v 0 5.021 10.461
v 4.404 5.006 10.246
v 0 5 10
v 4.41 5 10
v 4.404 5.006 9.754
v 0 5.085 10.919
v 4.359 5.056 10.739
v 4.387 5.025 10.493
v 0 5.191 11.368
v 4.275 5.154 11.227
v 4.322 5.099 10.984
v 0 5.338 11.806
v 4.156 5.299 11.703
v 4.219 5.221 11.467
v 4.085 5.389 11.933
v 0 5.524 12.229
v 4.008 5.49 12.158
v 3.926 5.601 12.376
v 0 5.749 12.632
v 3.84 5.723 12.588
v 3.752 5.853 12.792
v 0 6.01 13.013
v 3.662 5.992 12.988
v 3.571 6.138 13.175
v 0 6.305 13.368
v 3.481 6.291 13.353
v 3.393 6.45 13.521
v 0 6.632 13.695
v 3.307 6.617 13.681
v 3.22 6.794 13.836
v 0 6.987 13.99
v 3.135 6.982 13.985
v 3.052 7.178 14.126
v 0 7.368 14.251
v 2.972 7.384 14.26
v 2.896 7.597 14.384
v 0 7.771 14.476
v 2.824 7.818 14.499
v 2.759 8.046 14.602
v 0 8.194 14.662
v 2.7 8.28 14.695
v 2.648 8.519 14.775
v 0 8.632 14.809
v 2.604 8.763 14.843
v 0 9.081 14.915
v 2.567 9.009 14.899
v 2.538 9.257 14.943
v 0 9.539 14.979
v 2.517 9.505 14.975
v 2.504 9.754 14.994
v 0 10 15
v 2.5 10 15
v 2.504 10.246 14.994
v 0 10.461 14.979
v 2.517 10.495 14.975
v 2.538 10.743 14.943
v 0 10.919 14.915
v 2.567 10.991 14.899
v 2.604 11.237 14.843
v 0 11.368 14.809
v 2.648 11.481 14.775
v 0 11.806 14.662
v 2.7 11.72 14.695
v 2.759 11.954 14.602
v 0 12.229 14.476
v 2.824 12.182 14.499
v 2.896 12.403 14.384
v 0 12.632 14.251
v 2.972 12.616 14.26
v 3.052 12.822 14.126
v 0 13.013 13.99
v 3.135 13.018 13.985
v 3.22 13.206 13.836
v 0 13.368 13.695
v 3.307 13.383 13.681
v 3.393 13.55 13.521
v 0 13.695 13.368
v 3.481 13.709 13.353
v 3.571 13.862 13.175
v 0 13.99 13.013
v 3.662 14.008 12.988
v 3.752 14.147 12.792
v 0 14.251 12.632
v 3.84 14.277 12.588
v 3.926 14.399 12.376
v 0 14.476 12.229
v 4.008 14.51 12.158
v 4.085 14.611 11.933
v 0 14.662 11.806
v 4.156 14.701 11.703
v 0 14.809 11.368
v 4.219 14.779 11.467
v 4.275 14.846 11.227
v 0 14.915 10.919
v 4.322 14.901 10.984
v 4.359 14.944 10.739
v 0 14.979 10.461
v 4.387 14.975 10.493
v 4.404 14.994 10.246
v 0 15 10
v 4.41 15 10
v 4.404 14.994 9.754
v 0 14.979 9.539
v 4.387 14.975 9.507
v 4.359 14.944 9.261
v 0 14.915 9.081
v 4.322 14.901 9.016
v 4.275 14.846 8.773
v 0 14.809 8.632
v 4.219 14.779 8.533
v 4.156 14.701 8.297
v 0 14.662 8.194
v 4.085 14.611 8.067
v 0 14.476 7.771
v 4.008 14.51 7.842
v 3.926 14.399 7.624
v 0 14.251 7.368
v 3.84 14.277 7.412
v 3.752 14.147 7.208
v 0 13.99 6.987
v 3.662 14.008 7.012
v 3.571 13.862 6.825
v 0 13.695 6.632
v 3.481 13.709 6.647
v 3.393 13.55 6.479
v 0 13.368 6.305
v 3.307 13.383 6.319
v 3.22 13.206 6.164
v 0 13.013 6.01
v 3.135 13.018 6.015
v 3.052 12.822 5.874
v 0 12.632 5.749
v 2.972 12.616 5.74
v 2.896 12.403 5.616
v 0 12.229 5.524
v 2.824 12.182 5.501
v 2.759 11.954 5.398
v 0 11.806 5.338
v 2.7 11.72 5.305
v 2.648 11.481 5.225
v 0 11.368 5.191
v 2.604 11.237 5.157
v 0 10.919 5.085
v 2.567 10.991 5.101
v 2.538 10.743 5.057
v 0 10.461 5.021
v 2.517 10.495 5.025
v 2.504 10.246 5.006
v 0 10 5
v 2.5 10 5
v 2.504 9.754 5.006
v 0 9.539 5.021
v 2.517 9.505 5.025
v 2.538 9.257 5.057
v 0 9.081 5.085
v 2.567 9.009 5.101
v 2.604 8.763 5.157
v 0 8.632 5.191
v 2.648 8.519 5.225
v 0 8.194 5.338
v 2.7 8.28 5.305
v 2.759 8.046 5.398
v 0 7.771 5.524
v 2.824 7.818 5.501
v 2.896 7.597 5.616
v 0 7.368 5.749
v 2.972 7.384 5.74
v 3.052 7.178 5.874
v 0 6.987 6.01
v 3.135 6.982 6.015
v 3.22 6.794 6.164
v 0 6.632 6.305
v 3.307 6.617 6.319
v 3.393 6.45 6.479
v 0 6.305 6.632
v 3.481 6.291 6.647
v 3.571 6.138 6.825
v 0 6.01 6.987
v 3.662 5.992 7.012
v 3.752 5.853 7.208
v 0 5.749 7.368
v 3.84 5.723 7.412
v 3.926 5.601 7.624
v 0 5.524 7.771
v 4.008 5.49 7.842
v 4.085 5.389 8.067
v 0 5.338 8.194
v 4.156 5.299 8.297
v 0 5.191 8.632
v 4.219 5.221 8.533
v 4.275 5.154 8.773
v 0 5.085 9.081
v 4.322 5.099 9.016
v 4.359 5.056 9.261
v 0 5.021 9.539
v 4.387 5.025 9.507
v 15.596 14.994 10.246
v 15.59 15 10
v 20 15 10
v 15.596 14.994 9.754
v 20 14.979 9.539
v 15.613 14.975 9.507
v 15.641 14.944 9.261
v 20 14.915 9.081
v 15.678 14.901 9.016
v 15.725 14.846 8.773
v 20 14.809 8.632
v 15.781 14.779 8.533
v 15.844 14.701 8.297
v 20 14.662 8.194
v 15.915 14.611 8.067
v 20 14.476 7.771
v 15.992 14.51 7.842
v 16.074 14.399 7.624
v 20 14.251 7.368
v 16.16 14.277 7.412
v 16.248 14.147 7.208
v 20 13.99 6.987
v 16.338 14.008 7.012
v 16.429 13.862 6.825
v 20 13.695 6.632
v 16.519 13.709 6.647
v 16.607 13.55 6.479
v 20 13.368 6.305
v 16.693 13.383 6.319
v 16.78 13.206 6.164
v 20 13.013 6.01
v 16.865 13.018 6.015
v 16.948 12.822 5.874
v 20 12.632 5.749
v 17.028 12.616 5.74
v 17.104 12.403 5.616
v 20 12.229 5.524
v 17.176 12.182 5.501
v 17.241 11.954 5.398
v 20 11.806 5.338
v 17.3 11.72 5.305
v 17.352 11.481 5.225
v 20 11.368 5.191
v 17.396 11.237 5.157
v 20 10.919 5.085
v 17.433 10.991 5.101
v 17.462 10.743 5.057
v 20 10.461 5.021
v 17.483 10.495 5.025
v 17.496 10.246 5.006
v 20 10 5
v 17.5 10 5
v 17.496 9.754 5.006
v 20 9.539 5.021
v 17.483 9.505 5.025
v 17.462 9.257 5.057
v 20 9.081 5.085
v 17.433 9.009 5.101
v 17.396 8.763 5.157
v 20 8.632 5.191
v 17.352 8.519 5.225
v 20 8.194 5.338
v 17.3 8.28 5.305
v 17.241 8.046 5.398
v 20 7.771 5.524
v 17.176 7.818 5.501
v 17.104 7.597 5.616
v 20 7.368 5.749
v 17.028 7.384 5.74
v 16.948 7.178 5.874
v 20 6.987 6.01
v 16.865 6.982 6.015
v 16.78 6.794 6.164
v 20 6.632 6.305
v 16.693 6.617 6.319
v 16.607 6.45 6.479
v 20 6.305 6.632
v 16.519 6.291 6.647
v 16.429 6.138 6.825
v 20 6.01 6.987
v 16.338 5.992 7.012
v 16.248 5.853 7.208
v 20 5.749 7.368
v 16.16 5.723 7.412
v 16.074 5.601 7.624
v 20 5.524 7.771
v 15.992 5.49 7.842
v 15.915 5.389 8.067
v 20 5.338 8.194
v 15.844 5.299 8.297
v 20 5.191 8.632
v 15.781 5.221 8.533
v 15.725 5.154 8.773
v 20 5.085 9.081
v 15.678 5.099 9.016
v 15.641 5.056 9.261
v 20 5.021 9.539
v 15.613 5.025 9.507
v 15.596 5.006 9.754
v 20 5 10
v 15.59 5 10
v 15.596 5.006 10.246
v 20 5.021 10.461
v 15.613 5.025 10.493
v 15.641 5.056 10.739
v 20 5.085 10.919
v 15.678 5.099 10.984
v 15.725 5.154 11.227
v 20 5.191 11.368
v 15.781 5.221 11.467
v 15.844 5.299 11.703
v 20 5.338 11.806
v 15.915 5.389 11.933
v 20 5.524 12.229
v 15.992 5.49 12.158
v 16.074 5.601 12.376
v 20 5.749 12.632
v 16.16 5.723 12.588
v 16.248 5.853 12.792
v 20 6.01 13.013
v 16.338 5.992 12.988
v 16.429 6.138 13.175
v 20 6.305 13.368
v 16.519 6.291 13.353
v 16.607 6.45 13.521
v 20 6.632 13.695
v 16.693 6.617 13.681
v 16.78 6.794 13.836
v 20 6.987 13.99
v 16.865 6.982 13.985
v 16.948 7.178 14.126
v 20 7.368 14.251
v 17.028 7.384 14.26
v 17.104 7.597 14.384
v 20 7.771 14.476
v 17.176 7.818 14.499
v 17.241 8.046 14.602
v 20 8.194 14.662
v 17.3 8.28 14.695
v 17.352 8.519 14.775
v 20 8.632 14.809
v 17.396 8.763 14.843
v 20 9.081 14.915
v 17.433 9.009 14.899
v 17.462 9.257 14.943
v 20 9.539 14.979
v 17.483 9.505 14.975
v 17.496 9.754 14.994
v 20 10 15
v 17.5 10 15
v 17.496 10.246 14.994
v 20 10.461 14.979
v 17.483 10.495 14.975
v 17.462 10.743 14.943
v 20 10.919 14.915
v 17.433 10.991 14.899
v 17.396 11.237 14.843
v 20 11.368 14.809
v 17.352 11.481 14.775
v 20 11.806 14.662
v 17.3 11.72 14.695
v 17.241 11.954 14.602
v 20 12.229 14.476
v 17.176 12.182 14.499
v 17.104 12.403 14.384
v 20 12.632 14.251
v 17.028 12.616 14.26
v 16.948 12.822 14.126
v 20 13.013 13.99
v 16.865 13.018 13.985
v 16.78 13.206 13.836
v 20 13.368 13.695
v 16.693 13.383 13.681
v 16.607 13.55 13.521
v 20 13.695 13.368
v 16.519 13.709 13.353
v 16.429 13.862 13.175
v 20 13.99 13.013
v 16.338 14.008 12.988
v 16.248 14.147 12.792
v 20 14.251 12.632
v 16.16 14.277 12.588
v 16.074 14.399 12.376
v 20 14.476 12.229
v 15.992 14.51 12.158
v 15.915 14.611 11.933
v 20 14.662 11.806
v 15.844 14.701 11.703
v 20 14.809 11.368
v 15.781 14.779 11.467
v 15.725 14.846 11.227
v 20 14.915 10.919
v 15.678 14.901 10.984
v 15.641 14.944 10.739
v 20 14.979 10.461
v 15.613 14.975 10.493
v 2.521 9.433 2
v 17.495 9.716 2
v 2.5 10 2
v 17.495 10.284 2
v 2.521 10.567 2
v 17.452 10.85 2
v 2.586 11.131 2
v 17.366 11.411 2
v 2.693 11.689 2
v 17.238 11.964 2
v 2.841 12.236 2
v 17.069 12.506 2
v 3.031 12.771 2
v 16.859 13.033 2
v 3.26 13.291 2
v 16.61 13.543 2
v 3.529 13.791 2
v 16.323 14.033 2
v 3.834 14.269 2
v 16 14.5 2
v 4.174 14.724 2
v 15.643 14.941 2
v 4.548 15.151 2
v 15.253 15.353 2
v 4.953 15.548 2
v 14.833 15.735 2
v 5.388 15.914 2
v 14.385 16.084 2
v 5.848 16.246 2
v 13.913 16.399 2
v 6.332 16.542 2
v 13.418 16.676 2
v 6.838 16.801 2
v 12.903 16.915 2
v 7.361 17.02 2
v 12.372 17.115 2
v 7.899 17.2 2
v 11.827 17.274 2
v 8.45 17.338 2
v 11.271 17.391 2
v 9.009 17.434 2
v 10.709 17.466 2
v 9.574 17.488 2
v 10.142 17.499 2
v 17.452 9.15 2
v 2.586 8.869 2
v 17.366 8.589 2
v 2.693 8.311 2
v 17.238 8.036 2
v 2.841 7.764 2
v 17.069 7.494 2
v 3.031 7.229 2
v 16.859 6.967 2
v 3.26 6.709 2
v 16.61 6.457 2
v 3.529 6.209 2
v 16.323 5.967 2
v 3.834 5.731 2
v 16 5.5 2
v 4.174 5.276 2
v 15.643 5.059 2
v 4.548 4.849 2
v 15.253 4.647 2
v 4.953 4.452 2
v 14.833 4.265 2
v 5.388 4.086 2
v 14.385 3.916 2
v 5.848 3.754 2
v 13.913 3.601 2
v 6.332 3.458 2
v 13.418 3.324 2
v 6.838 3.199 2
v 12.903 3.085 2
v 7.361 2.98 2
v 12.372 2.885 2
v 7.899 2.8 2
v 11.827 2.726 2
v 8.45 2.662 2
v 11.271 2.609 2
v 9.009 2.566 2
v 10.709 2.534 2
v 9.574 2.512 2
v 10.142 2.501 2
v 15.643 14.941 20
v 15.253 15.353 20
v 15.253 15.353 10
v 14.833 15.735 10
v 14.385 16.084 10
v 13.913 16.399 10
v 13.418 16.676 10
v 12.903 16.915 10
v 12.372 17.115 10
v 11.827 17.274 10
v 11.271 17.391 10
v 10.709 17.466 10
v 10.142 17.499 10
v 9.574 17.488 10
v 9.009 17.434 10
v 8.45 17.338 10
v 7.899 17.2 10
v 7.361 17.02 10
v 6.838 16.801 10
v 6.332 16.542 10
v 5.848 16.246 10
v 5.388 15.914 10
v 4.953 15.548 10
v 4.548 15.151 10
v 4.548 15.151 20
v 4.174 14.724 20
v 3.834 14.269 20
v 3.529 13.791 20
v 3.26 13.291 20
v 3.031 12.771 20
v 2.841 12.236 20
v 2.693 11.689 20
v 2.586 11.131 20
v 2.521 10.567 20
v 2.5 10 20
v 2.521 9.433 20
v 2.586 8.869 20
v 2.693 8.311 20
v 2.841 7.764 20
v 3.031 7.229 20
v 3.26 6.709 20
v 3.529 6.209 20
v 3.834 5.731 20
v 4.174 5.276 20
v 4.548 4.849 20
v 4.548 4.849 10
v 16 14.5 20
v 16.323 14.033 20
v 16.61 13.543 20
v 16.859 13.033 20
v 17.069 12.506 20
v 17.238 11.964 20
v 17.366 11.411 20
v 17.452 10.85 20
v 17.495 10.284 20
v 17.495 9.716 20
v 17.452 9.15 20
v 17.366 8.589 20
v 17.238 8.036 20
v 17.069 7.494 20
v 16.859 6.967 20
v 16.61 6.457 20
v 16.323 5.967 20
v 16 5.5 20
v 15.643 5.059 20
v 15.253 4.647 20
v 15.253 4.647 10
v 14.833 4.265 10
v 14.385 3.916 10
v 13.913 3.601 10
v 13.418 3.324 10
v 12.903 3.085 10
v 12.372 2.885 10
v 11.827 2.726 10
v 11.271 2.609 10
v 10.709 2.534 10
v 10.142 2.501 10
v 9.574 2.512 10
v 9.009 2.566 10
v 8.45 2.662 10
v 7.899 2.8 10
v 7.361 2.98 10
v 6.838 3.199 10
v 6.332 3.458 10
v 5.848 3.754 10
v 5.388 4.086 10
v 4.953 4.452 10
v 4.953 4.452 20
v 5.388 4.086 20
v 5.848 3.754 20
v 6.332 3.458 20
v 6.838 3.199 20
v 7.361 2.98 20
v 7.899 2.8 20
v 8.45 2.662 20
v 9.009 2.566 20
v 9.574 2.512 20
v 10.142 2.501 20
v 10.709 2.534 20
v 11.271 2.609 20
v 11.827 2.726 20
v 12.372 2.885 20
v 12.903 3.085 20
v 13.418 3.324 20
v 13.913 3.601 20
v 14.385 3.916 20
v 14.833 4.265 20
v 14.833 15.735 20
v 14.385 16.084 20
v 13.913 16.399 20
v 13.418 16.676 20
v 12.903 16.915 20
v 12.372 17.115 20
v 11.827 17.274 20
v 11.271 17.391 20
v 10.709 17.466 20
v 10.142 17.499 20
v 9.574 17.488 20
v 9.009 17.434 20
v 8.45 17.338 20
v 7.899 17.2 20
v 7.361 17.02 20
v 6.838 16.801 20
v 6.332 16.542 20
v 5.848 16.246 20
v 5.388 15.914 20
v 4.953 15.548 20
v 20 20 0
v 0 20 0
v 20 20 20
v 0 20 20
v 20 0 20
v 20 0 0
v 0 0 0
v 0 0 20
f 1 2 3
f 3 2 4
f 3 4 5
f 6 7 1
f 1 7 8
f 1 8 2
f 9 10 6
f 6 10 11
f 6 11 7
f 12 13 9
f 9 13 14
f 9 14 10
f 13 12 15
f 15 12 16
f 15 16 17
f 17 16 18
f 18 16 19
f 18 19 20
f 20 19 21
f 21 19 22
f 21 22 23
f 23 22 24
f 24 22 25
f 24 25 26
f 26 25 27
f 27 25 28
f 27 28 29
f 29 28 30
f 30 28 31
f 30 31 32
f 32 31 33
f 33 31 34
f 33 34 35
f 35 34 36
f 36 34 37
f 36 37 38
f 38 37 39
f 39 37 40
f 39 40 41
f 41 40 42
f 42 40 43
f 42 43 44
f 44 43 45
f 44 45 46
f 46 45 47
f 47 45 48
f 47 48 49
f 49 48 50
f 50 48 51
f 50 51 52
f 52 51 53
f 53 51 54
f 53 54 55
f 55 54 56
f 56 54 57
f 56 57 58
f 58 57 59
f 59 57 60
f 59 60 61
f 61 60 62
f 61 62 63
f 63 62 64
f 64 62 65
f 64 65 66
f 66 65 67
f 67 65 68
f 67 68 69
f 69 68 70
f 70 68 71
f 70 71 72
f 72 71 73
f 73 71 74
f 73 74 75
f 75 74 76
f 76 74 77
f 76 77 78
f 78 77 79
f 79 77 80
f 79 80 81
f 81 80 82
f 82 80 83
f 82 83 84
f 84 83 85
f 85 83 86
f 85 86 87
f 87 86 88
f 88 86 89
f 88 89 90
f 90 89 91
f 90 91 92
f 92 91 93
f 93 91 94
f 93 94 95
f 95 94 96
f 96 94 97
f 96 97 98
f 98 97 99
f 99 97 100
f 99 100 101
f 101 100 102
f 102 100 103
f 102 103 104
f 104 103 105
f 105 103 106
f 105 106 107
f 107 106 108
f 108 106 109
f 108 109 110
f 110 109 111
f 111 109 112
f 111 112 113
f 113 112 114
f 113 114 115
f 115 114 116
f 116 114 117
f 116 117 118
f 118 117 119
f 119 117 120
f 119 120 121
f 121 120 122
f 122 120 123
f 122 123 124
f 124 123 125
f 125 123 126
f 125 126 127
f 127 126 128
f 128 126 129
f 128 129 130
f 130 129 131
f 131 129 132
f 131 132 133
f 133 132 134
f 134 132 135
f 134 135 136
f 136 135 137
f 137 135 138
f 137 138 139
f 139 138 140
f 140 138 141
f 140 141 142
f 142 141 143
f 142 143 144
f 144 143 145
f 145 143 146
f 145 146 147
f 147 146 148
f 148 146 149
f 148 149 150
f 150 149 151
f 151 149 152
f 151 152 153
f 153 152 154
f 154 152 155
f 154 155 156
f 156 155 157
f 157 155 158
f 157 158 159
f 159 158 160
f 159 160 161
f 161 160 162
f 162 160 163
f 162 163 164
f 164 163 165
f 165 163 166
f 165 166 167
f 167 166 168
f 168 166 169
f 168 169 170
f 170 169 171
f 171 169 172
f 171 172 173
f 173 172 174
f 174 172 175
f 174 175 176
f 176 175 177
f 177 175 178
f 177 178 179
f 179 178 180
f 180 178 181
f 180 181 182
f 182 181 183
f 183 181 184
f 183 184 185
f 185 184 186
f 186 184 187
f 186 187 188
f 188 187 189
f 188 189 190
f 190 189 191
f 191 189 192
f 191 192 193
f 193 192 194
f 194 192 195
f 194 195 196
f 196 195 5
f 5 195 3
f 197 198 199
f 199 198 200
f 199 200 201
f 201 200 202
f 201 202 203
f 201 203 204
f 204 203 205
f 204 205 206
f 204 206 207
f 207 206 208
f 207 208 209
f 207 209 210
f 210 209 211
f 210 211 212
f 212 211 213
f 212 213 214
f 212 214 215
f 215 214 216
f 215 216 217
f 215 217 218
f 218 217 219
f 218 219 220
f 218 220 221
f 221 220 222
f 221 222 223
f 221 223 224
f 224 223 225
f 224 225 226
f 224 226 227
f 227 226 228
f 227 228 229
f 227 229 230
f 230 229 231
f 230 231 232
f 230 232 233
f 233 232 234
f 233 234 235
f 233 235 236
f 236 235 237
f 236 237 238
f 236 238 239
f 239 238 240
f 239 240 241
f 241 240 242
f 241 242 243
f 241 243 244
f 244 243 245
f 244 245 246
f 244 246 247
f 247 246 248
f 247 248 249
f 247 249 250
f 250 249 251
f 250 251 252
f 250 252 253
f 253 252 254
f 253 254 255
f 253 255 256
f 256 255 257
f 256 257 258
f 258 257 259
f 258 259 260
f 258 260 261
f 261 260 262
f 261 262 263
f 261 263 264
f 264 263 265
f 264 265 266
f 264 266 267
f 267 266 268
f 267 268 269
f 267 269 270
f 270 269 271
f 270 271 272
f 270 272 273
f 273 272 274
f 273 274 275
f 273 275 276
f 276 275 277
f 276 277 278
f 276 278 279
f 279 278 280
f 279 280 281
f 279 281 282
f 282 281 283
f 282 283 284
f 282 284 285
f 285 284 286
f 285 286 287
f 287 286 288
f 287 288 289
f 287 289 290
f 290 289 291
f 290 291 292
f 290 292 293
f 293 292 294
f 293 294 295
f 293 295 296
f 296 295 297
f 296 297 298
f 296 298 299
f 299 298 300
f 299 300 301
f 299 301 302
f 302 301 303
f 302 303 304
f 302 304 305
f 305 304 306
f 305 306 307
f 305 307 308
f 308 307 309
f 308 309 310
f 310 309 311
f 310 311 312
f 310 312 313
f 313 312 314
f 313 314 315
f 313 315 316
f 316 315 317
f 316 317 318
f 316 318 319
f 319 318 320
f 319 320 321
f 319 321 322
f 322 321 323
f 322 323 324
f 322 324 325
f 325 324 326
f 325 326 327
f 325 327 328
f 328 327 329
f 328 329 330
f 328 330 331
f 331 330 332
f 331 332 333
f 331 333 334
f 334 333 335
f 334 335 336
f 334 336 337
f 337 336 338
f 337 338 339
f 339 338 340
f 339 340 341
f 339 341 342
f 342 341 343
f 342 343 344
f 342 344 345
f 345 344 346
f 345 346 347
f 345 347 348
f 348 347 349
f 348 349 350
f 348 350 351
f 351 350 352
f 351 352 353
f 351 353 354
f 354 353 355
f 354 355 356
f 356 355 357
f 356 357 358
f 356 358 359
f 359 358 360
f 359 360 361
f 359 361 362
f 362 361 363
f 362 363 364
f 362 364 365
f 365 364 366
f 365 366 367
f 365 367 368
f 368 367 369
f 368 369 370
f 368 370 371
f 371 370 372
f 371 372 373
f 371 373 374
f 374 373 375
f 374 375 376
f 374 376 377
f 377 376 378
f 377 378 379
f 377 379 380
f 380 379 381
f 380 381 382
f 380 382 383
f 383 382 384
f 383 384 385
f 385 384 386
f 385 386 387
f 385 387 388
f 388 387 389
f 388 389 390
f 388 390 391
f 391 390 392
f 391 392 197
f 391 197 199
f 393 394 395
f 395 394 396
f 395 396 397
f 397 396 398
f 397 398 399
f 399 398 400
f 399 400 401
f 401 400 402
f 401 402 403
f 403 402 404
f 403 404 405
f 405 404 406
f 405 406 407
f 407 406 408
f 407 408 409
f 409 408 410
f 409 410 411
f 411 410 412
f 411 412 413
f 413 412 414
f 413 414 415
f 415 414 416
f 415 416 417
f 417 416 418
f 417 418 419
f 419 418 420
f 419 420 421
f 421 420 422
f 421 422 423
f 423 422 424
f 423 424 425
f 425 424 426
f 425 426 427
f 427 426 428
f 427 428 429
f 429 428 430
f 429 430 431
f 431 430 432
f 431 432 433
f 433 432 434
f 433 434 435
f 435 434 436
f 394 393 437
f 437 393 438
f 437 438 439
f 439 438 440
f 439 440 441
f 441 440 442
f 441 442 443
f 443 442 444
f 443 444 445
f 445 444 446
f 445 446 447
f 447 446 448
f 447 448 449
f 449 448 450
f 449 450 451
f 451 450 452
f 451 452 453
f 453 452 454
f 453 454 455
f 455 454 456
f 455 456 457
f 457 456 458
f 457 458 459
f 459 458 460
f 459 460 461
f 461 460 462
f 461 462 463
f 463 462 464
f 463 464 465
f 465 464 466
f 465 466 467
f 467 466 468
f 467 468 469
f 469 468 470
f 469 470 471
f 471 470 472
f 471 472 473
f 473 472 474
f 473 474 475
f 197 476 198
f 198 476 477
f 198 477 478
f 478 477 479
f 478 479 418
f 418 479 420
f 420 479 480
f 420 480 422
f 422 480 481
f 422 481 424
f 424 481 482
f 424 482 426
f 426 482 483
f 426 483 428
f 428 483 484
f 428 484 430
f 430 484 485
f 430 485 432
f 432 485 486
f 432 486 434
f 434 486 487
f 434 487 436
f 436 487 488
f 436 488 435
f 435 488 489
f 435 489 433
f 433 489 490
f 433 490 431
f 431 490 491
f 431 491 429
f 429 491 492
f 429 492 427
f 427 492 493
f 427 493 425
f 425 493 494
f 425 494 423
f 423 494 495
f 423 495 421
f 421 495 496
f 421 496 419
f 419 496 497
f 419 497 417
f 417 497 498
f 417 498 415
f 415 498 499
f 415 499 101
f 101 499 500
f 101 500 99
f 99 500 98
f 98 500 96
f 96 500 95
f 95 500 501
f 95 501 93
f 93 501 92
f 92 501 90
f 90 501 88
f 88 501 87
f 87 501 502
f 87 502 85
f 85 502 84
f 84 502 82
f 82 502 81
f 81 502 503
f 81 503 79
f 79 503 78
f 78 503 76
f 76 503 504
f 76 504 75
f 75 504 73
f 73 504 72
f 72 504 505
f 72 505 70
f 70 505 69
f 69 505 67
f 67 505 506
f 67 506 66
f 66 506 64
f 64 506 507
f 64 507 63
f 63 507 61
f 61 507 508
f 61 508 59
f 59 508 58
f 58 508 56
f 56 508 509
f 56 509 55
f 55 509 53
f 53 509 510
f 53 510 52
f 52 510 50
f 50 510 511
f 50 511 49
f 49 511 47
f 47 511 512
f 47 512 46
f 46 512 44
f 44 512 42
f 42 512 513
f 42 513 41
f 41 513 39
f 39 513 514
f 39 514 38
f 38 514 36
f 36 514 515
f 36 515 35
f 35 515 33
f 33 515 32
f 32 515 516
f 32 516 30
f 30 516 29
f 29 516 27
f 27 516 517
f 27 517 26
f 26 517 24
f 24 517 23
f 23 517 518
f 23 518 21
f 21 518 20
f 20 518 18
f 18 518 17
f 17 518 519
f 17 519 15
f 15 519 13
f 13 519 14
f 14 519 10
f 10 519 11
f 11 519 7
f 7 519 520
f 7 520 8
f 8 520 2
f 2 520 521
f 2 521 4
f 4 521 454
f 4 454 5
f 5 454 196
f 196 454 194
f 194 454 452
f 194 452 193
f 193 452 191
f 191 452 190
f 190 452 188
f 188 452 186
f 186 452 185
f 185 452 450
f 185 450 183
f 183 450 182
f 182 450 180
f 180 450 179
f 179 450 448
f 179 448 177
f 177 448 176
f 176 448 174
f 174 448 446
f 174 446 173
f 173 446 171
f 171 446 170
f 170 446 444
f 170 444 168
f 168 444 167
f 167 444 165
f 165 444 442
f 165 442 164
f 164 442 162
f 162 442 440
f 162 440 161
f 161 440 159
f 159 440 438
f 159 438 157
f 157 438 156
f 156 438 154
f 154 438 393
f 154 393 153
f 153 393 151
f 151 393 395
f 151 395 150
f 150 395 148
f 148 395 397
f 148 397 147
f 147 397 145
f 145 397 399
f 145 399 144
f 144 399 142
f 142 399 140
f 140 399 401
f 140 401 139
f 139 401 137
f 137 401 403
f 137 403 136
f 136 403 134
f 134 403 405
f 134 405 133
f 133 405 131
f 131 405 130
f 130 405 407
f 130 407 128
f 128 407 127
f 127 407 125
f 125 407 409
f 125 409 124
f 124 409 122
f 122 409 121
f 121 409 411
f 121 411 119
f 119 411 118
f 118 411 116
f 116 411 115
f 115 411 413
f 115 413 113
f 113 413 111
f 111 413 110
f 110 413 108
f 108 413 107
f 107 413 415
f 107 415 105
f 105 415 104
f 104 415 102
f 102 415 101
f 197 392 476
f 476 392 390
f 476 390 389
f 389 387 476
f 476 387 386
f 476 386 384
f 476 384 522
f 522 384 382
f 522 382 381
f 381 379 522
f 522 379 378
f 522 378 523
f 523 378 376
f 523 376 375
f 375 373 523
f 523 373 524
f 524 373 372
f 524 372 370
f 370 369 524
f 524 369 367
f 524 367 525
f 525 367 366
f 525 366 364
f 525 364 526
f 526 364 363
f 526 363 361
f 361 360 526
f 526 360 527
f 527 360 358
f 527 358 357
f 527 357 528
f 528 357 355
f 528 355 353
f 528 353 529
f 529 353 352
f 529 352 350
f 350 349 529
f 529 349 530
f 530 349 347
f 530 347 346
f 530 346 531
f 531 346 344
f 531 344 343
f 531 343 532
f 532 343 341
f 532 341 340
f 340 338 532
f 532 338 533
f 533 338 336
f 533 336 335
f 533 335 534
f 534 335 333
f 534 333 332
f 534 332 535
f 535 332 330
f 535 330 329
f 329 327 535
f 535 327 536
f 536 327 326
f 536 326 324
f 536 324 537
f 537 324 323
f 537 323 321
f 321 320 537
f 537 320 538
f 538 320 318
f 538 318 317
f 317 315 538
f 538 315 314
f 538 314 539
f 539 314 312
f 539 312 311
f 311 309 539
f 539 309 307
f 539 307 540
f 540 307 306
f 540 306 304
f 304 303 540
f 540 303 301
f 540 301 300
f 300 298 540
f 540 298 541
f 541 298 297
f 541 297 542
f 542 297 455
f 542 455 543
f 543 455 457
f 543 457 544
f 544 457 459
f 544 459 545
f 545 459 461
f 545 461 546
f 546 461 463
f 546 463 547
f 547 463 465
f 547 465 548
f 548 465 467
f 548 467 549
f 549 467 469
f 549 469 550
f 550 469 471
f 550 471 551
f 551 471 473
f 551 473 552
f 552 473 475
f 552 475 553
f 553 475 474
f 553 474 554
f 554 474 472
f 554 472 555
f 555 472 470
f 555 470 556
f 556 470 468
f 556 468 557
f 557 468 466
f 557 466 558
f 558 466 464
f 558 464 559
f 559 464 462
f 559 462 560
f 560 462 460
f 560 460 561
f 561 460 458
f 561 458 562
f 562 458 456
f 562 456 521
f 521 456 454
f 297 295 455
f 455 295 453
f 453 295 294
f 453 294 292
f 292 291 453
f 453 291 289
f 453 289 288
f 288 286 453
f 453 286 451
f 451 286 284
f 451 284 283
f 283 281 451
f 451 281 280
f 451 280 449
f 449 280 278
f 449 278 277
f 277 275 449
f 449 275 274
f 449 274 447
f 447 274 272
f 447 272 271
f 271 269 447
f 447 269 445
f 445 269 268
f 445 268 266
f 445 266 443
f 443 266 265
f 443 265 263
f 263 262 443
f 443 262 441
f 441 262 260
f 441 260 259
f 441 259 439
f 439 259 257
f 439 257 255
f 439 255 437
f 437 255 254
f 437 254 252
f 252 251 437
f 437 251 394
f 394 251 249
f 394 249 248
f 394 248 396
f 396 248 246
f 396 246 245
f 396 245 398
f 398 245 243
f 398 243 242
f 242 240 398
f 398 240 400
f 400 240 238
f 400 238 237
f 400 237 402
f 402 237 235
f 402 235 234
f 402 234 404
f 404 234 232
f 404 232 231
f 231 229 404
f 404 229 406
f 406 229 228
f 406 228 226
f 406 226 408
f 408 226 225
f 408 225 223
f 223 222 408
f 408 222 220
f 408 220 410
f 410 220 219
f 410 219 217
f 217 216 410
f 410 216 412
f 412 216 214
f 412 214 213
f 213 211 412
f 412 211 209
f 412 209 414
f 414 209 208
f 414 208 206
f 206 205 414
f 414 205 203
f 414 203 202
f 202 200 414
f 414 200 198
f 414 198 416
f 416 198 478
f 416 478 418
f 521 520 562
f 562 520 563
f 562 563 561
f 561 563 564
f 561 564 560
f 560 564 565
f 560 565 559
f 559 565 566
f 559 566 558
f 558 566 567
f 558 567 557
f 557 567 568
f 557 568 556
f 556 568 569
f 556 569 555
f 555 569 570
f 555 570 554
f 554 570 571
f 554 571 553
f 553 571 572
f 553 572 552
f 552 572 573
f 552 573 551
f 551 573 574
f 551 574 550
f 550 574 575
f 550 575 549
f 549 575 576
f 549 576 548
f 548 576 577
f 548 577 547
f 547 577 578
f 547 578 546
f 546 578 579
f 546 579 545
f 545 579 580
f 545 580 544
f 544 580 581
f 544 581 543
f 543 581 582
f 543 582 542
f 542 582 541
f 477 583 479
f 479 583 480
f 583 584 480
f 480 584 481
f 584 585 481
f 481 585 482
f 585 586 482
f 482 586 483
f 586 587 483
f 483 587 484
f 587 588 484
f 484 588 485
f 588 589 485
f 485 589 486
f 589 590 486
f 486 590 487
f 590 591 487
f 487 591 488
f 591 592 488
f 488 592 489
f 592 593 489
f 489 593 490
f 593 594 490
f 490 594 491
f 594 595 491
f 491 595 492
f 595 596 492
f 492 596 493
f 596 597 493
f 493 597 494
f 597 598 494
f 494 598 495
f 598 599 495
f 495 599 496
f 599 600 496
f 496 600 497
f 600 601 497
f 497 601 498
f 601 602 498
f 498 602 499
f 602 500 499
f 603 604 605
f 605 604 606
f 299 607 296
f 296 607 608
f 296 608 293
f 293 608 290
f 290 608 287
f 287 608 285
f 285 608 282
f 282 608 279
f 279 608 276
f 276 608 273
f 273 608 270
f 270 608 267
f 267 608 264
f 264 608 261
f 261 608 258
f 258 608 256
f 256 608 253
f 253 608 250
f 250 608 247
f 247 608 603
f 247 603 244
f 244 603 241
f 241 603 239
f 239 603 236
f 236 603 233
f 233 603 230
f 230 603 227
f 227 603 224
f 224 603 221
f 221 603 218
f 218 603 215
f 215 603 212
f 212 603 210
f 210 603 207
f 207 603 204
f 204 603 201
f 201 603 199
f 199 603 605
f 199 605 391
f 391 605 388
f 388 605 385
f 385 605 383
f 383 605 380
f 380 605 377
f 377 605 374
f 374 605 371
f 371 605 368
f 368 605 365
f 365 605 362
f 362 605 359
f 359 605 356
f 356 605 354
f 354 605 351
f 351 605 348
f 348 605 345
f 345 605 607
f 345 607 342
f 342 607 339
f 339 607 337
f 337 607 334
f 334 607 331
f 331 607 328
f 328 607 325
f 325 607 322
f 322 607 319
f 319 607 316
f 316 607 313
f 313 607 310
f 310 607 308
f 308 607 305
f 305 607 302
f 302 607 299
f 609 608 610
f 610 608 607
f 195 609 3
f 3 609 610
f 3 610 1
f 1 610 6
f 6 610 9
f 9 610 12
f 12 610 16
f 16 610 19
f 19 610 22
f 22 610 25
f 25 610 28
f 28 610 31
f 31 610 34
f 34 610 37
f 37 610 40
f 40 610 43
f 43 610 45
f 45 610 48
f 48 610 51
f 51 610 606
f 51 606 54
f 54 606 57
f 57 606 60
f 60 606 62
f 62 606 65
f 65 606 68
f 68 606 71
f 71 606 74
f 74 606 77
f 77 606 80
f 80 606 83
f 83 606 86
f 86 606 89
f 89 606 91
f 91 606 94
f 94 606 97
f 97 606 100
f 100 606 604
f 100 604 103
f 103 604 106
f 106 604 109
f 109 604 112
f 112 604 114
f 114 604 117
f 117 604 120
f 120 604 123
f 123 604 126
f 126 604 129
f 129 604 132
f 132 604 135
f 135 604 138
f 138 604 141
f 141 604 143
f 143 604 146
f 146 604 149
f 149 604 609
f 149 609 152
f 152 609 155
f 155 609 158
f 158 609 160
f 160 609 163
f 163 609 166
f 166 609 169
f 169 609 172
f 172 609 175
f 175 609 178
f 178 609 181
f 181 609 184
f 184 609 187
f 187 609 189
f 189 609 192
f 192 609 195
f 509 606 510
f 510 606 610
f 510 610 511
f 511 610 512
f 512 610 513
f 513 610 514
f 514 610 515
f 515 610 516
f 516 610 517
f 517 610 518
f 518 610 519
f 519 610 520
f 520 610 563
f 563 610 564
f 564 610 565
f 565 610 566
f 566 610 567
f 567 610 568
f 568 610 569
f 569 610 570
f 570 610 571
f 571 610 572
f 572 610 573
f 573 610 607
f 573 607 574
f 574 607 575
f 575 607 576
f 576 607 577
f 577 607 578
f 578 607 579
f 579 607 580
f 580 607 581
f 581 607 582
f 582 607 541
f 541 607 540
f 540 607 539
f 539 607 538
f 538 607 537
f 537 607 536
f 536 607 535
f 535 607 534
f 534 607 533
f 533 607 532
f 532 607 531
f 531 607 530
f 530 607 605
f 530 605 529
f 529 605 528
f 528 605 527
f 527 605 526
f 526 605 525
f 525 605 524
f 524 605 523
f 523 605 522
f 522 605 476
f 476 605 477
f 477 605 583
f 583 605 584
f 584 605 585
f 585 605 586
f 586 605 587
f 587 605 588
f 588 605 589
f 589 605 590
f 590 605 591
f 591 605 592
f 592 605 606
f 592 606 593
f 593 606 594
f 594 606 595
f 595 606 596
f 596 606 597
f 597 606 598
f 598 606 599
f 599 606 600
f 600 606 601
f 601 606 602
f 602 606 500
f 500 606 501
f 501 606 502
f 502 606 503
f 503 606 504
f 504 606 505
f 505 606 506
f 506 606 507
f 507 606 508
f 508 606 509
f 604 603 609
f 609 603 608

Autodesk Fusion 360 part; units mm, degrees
sketch "Sketch1" plane through (0, 0, 0) normal (0, 0, 1) x (1, 0, 0)
  line L0 (0, 0) -> (20, 0)
  line L1 (20, 0) -> (20, 20)
  line L2 (20, 20) -> (0, 20)
  line L3 (0, 20) -> (0, 0)
  circle A0 centre (10, 10) radius 7.5
  dimension "d1" = 20
  dimension "d2" = 20
  dimension "d3" = 15
extrude "Extrude1" add sketch "Sketch1" along normal blind 20
extrude "Extrude2" add sketch "Sketch1" along normal blind 2 contours A0
sketch "Sketch2" plane through (0, 0, 0) normal (1, 0, 0) x (0, 1, 0)
  circle A0 centre (10, 10) radius 5
  dimension "d9" = 10
extrude "Extrude3" cut sketch "Sketch2" along normal blind 20 and the other way blind 0
